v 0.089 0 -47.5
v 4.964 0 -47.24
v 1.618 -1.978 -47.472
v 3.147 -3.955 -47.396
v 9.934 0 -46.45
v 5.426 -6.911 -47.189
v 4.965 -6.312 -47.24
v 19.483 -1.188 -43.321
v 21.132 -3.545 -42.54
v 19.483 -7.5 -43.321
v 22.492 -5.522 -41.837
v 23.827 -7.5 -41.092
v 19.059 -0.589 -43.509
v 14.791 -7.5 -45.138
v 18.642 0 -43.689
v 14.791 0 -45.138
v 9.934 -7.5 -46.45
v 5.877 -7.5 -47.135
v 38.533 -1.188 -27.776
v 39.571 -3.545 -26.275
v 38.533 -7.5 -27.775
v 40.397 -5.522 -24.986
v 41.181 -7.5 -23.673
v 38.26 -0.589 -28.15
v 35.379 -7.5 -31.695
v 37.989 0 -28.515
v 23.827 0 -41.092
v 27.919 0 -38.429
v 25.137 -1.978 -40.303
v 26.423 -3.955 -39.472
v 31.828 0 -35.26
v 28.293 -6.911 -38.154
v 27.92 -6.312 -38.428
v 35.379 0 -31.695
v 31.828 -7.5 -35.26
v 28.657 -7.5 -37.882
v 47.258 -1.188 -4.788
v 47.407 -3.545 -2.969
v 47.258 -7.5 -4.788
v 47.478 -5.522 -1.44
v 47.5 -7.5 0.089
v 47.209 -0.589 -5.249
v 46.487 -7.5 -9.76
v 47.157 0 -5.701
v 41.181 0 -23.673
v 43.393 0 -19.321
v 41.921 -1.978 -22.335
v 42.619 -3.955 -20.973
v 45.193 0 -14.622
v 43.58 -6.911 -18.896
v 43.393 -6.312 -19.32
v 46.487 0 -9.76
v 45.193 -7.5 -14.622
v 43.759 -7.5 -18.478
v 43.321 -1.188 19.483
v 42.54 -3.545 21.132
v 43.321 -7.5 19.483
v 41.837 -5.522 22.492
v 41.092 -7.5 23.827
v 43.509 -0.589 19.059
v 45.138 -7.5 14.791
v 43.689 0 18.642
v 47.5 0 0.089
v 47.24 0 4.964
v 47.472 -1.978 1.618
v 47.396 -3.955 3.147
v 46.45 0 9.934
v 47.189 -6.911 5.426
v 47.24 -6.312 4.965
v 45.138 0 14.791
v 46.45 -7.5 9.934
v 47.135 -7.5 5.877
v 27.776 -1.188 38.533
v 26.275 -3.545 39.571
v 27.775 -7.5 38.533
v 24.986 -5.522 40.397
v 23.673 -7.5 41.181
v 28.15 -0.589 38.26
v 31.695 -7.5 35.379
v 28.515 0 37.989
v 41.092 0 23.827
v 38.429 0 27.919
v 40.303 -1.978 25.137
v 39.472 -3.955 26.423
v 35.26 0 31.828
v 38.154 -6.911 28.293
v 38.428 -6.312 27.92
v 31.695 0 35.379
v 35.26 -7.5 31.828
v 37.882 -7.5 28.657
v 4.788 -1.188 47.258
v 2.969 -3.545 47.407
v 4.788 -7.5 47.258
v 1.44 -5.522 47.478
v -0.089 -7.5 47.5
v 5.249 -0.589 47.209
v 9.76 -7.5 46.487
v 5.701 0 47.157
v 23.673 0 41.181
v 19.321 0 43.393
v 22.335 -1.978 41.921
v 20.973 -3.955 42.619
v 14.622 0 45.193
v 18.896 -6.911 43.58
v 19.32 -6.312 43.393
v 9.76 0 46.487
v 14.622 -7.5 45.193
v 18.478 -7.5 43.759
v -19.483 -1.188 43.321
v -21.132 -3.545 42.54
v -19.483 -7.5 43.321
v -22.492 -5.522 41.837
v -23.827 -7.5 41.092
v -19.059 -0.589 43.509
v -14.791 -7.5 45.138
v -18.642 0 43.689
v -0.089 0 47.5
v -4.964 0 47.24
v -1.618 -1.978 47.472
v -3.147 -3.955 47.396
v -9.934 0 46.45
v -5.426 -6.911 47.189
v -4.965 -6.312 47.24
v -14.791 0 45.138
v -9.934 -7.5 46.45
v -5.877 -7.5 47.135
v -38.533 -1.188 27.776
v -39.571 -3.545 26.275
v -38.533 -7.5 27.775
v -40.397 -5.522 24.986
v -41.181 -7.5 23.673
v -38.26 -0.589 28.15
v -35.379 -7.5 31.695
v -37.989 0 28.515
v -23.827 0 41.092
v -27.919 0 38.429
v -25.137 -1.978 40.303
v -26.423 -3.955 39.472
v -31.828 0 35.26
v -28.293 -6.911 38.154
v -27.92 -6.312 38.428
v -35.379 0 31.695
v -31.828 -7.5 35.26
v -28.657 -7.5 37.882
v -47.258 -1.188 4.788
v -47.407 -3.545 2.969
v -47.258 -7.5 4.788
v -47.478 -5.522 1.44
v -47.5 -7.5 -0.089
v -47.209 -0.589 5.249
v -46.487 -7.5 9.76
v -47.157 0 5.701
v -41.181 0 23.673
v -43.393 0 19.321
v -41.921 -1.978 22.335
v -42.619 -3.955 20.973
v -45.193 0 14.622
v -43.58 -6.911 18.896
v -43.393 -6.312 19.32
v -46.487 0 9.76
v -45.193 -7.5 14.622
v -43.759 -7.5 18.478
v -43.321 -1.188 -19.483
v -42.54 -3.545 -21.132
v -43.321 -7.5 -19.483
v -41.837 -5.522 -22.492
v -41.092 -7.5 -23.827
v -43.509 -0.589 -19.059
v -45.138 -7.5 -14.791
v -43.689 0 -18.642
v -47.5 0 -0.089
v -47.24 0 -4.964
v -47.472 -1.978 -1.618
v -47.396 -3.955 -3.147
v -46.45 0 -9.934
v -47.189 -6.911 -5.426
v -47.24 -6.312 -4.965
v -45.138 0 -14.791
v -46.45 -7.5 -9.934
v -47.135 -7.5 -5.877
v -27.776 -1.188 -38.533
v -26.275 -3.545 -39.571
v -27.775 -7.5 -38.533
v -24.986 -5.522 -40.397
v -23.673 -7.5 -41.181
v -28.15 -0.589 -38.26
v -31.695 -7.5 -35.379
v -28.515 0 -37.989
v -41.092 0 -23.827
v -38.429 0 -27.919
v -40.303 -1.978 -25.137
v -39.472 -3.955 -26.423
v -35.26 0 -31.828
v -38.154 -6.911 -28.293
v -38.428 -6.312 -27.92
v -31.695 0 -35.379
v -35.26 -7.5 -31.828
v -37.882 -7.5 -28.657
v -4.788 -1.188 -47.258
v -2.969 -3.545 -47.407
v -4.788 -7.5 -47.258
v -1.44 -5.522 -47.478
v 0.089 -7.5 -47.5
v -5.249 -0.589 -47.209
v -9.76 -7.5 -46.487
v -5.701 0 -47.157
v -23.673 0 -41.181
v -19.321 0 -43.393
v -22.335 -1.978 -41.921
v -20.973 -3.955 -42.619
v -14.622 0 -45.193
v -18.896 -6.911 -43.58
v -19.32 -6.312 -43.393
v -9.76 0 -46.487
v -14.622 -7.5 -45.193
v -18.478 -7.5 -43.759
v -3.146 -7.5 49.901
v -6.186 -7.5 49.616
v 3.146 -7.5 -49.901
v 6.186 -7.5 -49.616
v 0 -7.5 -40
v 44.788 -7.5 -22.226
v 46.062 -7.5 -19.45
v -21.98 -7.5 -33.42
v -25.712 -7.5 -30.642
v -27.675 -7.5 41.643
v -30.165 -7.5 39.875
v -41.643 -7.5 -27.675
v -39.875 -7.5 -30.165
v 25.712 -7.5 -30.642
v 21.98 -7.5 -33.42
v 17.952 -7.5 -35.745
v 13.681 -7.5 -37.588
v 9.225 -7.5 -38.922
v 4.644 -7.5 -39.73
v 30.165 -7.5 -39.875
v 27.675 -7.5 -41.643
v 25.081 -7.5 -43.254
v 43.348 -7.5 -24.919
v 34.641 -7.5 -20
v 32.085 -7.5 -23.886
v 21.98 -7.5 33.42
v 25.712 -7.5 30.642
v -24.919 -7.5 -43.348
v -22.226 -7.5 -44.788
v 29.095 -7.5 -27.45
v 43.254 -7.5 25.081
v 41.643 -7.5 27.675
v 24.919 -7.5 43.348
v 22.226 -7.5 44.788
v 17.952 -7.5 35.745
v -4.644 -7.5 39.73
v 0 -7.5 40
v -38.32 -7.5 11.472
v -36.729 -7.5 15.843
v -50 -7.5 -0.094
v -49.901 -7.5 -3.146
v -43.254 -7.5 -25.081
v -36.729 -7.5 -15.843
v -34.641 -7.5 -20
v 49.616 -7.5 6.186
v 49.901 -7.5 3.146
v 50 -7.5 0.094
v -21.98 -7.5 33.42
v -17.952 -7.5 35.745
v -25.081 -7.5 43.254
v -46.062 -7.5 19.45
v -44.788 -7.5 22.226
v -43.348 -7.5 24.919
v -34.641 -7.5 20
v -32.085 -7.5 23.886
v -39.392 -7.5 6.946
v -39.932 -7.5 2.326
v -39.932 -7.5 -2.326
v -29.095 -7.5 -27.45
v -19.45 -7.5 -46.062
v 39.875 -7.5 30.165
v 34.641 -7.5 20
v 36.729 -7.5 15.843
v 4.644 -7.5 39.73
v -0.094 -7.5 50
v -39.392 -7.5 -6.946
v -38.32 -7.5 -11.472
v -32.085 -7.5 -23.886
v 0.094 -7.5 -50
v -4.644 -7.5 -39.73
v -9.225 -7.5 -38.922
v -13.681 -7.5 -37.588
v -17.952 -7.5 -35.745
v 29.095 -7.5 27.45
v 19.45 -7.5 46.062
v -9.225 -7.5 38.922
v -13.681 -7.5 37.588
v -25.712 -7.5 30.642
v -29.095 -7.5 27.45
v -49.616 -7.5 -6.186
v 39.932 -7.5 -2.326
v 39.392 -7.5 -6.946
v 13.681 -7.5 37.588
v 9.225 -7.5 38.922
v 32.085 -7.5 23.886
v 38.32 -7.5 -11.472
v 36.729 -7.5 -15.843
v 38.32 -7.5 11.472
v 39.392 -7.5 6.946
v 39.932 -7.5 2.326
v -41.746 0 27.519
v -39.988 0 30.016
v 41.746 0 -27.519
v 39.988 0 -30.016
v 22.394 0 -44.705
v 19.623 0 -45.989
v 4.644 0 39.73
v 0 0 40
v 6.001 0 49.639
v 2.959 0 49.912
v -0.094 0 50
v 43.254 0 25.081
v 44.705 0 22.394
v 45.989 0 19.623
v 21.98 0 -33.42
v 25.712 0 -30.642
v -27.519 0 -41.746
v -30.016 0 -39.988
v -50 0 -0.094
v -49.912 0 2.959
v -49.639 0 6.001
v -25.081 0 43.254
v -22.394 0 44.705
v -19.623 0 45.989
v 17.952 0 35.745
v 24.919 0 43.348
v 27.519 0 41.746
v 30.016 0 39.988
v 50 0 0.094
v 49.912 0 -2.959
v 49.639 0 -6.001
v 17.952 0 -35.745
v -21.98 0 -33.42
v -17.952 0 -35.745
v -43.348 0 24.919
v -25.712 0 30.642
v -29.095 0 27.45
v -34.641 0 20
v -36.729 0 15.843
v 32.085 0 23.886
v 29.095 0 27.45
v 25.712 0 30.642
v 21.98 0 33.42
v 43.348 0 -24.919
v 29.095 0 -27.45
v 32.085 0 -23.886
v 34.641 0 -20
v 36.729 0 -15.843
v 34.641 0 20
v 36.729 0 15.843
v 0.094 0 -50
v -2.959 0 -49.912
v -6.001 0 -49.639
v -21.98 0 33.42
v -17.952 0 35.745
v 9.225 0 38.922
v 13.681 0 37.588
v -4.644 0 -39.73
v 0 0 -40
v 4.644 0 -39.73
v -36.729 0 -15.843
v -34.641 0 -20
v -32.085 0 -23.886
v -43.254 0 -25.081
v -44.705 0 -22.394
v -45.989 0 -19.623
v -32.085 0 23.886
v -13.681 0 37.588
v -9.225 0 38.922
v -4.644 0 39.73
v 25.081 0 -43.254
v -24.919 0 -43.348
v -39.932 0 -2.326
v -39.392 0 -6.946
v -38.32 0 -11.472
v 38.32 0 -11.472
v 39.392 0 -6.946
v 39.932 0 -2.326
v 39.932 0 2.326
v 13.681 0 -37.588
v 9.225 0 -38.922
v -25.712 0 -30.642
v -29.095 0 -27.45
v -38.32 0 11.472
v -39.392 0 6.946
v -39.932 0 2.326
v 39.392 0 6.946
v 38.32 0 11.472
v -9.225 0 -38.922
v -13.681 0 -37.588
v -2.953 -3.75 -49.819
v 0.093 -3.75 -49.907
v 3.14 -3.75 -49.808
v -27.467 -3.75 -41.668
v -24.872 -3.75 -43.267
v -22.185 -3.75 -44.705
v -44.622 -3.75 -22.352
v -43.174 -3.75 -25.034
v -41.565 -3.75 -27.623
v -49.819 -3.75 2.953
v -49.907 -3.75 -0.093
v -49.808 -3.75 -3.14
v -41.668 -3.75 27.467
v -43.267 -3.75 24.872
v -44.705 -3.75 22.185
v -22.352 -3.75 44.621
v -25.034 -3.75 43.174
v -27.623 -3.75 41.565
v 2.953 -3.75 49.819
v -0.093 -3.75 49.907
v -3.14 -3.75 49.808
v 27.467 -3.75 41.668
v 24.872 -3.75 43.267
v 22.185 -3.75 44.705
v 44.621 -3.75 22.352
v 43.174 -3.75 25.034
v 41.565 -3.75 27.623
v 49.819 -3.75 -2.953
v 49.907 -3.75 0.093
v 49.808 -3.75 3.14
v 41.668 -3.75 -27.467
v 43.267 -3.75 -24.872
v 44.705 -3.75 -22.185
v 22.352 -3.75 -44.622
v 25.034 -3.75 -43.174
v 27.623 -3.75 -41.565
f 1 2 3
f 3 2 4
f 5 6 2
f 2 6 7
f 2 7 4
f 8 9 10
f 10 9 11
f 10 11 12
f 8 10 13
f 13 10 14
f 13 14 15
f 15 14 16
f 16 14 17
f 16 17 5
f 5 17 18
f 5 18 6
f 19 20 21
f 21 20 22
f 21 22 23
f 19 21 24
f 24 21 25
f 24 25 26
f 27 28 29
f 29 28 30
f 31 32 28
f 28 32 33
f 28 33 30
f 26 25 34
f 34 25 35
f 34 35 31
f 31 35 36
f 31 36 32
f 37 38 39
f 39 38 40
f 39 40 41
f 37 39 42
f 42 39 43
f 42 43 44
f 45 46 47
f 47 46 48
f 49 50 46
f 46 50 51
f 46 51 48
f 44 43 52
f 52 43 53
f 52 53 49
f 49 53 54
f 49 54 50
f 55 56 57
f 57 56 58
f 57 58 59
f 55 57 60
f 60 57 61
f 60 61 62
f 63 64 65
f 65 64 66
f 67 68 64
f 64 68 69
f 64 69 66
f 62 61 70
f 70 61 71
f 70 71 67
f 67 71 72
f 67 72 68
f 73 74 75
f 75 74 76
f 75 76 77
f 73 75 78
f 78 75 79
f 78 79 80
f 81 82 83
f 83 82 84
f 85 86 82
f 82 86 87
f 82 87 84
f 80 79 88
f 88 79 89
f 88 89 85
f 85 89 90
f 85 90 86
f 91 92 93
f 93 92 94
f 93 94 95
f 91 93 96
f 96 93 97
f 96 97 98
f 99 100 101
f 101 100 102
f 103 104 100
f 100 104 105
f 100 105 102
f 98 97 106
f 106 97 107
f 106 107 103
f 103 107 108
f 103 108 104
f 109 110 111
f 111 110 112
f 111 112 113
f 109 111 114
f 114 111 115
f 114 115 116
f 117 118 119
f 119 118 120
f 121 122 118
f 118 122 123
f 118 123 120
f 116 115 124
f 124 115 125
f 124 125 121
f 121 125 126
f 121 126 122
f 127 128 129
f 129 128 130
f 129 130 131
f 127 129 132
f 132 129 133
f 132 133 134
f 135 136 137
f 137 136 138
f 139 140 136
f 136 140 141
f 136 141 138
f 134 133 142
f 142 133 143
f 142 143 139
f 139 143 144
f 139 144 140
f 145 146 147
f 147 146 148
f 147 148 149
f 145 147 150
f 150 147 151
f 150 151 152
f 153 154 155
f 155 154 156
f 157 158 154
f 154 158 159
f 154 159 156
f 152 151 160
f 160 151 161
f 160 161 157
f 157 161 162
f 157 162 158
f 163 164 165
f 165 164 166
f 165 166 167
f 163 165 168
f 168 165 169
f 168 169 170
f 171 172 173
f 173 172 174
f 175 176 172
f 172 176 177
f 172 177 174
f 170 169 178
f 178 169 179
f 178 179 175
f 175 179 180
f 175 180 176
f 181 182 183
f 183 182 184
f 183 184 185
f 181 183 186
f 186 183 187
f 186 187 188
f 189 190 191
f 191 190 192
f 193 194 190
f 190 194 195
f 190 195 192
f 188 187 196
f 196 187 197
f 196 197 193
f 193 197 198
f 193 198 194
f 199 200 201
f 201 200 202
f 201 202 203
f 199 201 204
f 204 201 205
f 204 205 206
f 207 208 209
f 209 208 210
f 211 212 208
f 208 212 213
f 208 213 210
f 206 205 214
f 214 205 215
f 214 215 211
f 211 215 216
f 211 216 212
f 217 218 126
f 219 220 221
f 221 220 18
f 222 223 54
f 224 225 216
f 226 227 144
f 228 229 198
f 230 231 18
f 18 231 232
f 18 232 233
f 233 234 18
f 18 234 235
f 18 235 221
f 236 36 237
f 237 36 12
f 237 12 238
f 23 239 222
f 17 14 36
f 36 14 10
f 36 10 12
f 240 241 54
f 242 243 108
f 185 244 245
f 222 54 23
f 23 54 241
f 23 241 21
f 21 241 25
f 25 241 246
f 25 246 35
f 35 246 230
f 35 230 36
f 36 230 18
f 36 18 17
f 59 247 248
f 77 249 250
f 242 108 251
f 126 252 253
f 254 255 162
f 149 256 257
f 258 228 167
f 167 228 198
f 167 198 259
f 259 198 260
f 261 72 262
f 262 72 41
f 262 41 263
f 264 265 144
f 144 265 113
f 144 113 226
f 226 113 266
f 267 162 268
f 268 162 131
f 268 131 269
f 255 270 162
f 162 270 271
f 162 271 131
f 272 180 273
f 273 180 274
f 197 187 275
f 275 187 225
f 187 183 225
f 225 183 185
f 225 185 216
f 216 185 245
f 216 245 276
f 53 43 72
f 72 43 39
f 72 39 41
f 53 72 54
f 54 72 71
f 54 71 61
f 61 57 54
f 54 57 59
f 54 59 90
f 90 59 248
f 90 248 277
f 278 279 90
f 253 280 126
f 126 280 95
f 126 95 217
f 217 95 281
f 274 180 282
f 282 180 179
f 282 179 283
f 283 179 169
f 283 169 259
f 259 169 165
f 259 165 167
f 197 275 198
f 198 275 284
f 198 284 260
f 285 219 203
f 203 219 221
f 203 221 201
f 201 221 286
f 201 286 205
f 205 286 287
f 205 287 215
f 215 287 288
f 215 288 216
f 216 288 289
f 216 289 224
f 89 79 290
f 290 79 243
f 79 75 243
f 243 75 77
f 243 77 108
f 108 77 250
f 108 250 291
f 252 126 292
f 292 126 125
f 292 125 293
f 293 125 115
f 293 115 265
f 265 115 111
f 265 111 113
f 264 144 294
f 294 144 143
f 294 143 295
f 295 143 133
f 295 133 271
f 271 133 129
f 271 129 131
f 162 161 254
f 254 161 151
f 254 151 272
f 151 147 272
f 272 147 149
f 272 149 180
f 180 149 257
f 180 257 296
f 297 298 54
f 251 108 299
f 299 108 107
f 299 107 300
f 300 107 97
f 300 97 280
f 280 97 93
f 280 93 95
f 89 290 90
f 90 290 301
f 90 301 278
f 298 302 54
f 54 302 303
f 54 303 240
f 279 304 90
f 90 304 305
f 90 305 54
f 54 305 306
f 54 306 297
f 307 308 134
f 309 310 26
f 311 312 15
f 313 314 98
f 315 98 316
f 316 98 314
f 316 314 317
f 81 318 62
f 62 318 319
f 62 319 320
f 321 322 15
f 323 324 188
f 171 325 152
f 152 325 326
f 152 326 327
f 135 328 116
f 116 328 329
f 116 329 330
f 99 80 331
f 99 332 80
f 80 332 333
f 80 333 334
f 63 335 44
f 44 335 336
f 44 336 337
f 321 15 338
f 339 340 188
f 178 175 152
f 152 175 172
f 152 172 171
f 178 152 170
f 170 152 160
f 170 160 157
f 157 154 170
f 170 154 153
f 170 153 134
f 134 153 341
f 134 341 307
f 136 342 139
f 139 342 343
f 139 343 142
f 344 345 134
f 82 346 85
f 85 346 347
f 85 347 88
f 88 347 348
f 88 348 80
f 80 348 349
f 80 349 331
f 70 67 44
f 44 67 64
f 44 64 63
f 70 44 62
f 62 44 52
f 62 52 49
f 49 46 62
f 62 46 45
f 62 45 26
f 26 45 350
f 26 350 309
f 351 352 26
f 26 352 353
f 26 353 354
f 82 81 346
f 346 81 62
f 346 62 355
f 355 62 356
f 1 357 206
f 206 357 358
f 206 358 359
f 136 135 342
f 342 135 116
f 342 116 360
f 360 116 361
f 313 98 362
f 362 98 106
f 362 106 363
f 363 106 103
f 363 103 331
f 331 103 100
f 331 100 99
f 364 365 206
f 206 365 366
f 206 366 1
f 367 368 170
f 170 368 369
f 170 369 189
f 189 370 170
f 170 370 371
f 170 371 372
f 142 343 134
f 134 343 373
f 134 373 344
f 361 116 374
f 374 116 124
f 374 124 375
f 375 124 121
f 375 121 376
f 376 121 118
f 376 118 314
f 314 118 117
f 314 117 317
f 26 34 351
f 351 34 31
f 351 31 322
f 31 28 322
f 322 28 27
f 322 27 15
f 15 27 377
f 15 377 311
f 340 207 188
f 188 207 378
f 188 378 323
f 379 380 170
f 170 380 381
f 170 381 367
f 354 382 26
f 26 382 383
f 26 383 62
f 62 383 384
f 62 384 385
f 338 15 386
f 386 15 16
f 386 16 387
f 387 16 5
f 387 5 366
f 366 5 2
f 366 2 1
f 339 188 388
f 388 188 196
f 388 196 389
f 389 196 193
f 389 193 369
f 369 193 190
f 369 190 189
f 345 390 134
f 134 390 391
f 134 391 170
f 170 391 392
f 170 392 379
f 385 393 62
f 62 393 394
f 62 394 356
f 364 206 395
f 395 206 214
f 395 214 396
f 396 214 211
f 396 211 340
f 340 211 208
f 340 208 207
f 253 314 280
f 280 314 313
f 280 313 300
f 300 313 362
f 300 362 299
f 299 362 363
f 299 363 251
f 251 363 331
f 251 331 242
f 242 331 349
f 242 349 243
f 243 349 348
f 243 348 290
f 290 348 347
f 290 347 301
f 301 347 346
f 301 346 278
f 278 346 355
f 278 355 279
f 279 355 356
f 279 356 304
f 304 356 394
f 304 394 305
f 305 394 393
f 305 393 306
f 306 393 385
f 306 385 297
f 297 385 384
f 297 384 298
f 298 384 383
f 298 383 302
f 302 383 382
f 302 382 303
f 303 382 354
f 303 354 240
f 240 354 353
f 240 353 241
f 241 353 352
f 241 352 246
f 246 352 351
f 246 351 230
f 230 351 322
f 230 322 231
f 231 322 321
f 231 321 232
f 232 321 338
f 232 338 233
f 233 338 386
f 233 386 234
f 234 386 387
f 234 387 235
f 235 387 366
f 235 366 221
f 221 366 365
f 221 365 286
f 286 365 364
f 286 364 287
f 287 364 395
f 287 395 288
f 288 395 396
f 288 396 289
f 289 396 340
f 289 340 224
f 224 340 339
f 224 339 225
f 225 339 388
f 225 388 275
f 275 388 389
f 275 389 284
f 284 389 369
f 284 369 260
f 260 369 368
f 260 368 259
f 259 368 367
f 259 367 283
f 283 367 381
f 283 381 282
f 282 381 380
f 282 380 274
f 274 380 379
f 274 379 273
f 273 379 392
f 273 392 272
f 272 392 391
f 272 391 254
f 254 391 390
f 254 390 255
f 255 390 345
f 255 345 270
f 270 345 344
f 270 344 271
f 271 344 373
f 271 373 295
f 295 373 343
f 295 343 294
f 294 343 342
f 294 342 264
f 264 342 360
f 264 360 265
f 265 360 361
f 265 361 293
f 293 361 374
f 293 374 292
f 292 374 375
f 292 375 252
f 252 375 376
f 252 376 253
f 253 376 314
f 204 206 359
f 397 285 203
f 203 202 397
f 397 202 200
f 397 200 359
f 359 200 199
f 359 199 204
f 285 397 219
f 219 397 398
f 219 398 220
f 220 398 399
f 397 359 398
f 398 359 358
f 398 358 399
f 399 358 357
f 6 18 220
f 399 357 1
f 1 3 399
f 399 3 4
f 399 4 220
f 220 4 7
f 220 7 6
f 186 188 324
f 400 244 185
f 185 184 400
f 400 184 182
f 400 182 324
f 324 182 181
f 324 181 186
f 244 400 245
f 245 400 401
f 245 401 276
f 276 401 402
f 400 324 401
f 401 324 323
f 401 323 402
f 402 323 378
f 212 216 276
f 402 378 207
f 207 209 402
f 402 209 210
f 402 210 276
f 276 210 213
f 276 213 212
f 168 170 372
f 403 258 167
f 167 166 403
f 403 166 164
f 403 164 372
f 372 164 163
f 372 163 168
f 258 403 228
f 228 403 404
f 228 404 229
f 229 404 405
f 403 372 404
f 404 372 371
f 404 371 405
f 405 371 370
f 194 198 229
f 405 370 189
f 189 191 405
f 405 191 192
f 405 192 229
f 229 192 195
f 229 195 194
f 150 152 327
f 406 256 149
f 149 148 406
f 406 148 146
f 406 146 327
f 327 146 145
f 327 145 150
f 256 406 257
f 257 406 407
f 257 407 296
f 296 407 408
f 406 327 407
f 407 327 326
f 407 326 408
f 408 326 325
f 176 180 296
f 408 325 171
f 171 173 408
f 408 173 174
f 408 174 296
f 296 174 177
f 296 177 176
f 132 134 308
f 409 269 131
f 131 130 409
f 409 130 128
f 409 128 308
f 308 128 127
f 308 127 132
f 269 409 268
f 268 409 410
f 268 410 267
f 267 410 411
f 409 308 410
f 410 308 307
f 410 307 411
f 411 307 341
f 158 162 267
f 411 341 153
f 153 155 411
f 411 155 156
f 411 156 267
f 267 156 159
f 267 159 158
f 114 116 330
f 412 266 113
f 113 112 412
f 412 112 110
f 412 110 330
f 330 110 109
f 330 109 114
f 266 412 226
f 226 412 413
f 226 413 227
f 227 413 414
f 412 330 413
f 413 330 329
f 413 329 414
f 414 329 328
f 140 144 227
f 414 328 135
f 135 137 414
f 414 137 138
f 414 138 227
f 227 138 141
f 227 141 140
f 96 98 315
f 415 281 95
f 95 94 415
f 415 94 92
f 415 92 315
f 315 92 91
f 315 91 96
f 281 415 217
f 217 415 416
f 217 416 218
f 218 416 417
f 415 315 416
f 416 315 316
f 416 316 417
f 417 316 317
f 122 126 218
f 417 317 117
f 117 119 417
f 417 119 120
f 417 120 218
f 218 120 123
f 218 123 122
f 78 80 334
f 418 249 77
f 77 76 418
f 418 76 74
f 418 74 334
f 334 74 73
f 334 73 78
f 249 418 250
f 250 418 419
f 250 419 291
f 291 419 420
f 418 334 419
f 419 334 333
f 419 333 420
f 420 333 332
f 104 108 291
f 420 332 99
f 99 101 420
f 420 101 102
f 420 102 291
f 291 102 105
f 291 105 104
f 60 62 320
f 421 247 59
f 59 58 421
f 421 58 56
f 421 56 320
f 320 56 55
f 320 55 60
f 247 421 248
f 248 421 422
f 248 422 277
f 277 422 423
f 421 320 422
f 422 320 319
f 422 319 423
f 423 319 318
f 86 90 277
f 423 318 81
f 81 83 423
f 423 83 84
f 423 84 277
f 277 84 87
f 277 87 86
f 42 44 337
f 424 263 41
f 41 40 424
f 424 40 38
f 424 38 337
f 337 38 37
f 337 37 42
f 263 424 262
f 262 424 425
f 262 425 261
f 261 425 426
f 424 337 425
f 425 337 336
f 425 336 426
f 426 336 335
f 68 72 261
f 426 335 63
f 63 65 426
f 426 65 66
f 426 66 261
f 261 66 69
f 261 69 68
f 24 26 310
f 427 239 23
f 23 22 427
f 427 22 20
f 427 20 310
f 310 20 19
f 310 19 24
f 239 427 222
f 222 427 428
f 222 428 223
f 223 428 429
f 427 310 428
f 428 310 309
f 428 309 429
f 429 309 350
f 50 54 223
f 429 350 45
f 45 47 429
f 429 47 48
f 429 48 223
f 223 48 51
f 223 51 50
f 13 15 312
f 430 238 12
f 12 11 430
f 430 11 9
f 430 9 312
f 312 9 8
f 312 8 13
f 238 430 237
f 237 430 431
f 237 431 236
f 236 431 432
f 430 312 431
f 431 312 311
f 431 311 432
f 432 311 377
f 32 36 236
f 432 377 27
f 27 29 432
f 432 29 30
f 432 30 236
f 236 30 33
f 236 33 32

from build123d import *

# Parameters (mm, degrees)
SKETCH2_R           = 47.5
SKETCH2_R_2         = 40
BOSS_EXTRUDE2_DEPTH = 7.5
CIRPATTERN1_COUNT   = 12


with BuildPart() as part:
    # Sketch2 → Boss-Extrude2 (new body)
    with BuildSketch(Plane(origin=(0, 0, 0), x_dir=(1, 0, 0), z_dir=(0, 1, 0))):
        with Locations(Location((0, 0, 0), (0, 0, 270))):
            Circle(SKETCH2_R)
        with Locations(Location((0, 0, 0), (0, 0, 270))):
            Circle(SKETCH2_R_2, mode=Mode.SUBTRACT)
    extrude(amount=-BOSS_EXTRUDE2_DEPTH)

    # Loft2: read off the stored shape, not the designer's step
    # Loft2: loft between two sections, ruled curve by curve
    loft2_from = [
        Edge.make_bspline([(-5.700542846, 0, -47.156694236), (-5.750547608, 0, -47.570349449), (-5.80055237, 0, -47.984004661), (-5.900561893, 0, -48.811315086), (-5.950566655, 0, -49.224970299), (-6.000571417, 0, -49.638625511)], [0, 0, 0, 0, 0.5, 0.5, 1, 1, 1, 1], 3),
        Edge.make_bspline([(-6.000571417, 0, -49.638625511), (-3.977812454, 0, -49.88314698), (-1.943898665, 0, -50.003725887), (0.093582631, 0, -49.999912423)], [0, 0, 0, 0, 1, 1, 1, 1], 3, [1, 0.998756532, 0.998756532, 1]),
        Edge.make_bspline([(0.093582631, 0, -49.999912423), (0.092802776, 0, -49.583246486), (0.092022921, 0, -49.166580549), (0.09046321, 0, -48.333248675), (0.089683355, 0, -47.916582739), (0.088903499, 0, -47.499916802)], [0, 0, 0, 0, 0.5, 0.5, 1, 1, 1, 1], 3),
        Edge.make_line((0.088903499, 0, -47.499916802), (-5.700542846, 0, -47.156694236)),
    ]
    loft2_to = [
        Edge.make_bspline([(0.088903499, -7.5, -47.499916802), (0.089683355, -7.5, -47.916582739), (0.09046321, -7.5, -48.333248675), (0.092022921, -7.5, -49.166580549), (0.092802776, -7.5, -49.583246486), (0.093582631, -7.5, -49.999912423)], [0, 0, 0, 0, 0.5, 0.5, 1, 1, 1, 1], 3),
        Edge.make_bspline([(0.093582631, -7.5, -49.999912423), (2.131063927, -7.5, -49.996098959), (4.164512103, -7.5, -49.867907351), (6.186341578, -7.5, -49.615815804)], [0, 0, 0, 0, 1, 1, 1, 1], 3, [1, 0.998756532, 0.998756532, 1]),
        Edge.make_bspline([(6.186341578, -7.5, -49.615815804), (6.134788731, -7.5, -49.202350672), (6.083235885, -7.5, -48.78888554), (5.980130192, -7.5, -47.961955277), (5.928577345, -7.5, -47.548490145), (5.877024499, -7.5, -47.135025014)], [0, 0, 0, 0, 0.5, 0.5, 1, 1, 1, 1], 3),
        Edge.make_line((5.877024499, -7.5, -47.135025014), (0.088903499, -7.5, -47.499916802)),
    ]
    loft2 = Solid(Shell([*[Face.make_surface_from_curves(loft2_from[k], loft2_to[k]) for k in range(4)], Face(Wire(loft2_from)), Face(Wire(loft2_to))]))
    add(loft2)

    # CirPattern1: Loft2 ×12 about axis
    cirpattern1_axis = Axis((0, 0, 0), (0, 1, 0))
    for i in range(1, CIRPATTERN1_COUNT):
        add(loft2.rotate(cirpattern1_axis, i * 360 / CIRPATTERN1_COUNT))


solid = part.part
